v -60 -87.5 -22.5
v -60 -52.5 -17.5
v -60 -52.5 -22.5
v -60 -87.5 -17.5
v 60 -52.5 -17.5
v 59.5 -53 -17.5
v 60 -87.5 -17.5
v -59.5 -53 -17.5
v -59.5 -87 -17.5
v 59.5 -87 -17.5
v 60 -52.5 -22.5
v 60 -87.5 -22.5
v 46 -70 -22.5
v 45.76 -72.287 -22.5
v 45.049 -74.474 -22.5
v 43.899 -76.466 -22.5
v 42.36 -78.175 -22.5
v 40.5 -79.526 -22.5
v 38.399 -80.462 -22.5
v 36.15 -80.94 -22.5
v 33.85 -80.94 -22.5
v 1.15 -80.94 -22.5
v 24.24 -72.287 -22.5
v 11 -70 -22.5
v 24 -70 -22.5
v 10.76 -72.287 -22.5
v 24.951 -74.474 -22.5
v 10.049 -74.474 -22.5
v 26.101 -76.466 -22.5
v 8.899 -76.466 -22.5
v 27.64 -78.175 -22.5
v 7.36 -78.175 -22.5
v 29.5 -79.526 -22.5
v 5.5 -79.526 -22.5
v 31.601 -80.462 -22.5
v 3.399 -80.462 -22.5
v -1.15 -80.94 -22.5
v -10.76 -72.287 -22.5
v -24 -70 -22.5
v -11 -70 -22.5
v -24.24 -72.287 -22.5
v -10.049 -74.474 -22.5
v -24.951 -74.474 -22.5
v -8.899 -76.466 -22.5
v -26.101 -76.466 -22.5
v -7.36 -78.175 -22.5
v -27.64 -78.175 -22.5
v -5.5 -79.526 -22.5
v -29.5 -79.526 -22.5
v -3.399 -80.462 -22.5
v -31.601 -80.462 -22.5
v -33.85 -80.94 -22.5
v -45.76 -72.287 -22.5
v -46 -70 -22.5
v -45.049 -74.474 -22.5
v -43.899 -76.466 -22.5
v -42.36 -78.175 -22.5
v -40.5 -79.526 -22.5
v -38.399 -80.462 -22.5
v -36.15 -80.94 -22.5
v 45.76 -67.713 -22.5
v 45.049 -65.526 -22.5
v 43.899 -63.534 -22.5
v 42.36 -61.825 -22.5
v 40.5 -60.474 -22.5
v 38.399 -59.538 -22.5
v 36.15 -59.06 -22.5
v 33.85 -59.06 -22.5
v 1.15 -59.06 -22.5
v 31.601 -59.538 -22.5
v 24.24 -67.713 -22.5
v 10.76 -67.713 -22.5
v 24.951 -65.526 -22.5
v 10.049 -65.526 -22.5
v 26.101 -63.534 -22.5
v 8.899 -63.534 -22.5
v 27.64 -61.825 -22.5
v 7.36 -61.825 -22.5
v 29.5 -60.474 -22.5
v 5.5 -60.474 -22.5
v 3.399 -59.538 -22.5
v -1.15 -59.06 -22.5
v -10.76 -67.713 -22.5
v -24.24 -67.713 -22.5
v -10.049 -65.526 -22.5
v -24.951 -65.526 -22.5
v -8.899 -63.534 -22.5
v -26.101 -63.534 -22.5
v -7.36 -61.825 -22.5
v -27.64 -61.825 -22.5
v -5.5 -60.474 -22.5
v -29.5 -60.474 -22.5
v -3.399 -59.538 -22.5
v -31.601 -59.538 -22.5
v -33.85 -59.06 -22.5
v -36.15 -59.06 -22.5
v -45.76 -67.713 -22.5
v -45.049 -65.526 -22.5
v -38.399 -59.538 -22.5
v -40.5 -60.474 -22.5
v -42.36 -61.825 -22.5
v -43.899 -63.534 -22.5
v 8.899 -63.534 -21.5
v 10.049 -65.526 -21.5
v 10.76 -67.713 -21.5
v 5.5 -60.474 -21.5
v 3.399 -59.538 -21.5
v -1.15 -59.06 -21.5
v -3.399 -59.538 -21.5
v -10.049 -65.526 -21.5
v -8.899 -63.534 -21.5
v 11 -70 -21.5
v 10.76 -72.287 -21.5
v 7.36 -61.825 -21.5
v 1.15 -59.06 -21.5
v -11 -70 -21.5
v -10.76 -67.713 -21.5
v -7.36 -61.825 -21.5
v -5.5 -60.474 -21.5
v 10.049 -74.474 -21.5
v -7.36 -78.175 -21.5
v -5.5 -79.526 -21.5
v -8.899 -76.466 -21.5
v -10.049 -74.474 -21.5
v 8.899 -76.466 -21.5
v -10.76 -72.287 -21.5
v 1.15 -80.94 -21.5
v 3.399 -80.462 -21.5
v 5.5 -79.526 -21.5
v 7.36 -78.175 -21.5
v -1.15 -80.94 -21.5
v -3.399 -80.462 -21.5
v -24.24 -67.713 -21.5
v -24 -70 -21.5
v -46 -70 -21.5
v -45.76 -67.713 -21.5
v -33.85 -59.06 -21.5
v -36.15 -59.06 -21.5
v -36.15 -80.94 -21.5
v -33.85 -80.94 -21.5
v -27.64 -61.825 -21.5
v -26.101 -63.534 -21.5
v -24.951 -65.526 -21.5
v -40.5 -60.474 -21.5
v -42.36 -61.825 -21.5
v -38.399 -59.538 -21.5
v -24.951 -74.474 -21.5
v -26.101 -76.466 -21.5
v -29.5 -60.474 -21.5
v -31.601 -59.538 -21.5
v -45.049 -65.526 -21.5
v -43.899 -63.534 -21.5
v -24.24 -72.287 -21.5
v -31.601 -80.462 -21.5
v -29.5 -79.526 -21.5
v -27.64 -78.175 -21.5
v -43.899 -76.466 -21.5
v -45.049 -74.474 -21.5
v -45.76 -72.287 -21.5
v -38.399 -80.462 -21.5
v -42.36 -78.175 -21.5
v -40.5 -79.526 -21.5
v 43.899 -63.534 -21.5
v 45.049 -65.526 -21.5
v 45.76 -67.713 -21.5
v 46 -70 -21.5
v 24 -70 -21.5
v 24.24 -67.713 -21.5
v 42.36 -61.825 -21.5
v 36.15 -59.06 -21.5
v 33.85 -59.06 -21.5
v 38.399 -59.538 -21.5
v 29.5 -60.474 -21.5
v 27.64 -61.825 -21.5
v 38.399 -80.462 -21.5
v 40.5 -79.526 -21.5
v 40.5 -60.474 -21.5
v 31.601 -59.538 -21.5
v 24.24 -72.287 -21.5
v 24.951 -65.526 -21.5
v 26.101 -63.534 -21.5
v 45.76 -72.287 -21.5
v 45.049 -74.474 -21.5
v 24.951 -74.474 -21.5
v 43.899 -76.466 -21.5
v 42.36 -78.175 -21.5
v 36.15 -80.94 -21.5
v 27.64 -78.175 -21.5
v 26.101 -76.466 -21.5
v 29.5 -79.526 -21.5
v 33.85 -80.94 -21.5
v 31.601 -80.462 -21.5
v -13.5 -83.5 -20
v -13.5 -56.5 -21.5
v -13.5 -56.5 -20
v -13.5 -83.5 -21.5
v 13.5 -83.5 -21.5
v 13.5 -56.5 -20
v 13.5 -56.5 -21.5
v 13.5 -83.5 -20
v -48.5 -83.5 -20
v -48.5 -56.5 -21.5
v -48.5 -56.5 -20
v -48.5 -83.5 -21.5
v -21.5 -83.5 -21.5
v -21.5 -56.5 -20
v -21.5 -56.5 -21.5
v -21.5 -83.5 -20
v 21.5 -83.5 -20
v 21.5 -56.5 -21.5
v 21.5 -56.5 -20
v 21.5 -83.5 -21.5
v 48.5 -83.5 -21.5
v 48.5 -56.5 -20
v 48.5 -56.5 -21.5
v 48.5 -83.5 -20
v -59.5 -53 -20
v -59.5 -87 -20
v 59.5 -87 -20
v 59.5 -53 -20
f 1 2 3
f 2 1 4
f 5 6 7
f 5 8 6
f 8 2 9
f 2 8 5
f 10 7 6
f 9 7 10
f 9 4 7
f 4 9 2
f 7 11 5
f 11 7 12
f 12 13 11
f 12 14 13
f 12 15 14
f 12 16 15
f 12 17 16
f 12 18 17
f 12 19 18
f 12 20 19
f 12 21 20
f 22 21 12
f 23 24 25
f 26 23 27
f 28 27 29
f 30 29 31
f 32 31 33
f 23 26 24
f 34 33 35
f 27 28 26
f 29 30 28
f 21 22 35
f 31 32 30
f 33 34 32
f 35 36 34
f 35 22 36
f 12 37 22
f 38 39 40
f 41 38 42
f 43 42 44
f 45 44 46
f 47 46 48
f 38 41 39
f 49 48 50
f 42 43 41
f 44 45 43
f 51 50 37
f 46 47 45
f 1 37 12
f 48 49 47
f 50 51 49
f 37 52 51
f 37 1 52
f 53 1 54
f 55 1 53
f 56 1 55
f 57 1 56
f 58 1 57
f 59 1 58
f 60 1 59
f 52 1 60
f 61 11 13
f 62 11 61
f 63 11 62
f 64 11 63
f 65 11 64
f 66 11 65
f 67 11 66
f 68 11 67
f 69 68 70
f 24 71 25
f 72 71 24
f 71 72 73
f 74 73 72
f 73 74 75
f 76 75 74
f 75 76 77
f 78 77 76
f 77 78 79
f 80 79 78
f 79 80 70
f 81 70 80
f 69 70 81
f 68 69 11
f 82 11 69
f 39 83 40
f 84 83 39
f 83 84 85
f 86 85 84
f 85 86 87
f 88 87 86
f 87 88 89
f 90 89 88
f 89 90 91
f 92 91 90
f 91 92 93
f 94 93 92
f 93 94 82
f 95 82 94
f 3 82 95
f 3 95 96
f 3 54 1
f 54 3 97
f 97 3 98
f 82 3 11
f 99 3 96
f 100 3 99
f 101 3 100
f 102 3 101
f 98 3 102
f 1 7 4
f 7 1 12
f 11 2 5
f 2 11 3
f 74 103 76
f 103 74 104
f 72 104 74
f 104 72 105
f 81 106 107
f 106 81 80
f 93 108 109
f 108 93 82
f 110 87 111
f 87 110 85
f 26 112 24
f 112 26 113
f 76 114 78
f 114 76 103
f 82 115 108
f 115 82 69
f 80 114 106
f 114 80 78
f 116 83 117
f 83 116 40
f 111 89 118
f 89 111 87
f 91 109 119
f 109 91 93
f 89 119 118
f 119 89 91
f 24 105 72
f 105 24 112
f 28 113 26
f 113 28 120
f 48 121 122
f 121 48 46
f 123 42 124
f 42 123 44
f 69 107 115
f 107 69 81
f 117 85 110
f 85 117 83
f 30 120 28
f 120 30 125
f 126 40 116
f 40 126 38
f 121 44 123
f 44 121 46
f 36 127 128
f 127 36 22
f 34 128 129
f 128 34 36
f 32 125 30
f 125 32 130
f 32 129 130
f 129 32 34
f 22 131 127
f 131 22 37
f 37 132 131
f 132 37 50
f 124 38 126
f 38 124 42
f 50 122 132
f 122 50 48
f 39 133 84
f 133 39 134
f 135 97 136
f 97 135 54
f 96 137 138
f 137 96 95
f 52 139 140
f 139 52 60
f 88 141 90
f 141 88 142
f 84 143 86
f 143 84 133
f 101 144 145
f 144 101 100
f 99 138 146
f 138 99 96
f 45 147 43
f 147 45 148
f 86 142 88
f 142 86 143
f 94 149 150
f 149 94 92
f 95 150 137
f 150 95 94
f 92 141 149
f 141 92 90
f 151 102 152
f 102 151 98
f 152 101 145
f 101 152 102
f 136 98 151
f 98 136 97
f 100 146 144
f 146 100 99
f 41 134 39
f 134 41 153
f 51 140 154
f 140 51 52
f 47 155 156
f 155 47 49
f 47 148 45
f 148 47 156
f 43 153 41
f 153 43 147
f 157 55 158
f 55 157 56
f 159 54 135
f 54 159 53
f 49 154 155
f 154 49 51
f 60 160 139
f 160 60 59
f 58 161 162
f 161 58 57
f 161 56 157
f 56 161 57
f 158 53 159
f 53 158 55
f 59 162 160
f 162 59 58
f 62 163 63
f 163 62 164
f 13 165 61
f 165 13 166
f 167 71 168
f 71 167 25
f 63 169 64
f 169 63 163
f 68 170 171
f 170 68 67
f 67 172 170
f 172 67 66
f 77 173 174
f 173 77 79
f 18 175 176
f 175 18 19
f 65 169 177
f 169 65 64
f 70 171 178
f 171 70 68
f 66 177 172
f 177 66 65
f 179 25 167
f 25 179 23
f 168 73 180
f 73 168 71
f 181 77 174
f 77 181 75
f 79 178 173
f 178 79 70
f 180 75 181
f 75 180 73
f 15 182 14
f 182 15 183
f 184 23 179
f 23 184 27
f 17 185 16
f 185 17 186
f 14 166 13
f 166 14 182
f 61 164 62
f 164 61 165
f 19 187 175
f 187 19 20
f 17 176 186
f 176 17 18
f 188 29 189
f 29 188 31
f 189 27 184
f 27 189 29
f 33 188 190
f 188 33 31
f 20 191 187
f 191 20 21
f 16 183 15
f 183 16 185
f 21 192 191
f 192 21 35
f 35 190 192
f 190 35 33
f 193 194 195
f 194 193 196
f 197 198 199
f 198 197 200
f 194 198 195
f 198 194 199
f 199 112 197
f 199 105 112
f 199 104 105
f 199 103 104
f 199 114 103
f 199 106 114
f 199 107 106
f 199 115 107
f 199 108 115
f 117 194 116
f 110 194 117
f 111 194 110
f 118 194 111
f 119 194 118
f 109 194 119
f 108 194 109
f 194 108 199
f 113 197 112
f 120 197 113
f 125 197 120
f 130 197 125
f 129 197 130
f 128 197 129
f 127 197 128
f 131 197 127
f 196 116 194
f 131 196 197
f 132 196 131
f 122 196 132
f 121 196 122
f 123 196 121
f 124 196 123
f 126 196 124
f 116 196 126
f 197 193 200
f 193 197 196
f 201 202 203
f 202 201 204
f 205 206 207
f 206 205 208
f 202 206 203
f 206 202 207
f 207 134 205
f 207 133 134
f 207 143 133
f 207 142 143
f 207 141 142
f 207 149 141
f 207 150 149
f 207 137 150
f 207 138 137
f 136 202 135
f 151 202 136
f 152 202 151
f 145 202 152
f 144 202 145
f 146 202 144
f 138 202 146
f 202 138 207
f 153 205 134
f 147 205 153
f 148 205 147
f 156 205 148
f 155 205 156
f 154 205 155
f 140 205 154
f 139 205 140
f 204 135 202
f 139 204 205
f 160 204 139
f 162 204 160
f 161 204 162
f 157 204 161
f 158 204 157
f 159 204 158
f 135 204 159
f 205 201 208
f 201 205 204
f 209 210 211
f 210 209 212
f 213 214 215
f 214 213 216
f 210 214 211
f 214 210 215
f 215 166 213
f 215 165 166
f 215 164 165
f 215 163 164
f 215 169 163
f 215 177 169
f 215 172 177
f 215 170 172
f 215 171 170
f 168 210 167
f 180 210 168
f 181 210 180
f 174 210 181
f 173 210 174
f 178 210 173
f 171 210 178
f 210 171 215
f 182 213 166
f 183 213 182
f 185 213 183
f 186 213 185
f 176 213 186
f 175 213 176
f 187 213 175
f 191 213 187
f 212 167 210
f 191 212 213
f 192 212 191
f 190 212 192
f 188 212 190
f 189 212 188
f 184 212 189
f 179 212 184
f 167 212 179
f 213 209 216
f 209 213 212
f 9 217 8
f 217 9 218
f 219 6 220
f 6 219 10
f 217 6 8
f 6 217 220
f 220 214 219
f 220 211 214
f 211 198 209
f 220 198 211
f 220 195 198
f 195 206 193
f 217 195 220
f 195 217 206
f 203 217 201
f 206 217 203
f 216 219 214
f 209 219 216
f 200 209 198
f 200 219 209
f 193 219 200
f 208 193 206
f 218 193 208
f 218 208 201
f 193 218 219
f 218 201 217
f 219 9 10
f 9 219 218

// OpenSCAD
//filter holder/'wheel' for excitation
module filter_holderem2(){
    translate([0,-20,-20])difference(){
        cube([120,35,5],center=true);
        cylinder(h=999,r=11,center=true);
        translate([-35,0,0])cylinder(h=999,r=11,center=true);
        translate([35,0,0])cylinder(h=999,r=11,center=true);
        translate([0,0,0])cube([27,27,3],center=true);
        translate([-35,0,0])cube([27,27,3],center=true);
        translate([35,0,0])cube([27,27,3],center=true);
    }
}    
translate([0,-50,0])difference(){
        filter_holderem2();
        translate([0,-20,-18])cube([119,34,4],center=true);
        translate([0,-20,-18.75])cube([119,34,2.5],center=true);
} 

module filter_holderLid(){
translate([0,-20,-18.75])difference(){
    cube([118.5,33.5,2.5],center=true);
    translate([0,0,0.5])cube([27,27,2.5],center=true);
    translate([35,0,0.5])cube([27,27,2.5],center=true);
    translate([-35,0,0.5])cube([27,27,2.5],center=true);
}
}


//filter_holderLid();  
